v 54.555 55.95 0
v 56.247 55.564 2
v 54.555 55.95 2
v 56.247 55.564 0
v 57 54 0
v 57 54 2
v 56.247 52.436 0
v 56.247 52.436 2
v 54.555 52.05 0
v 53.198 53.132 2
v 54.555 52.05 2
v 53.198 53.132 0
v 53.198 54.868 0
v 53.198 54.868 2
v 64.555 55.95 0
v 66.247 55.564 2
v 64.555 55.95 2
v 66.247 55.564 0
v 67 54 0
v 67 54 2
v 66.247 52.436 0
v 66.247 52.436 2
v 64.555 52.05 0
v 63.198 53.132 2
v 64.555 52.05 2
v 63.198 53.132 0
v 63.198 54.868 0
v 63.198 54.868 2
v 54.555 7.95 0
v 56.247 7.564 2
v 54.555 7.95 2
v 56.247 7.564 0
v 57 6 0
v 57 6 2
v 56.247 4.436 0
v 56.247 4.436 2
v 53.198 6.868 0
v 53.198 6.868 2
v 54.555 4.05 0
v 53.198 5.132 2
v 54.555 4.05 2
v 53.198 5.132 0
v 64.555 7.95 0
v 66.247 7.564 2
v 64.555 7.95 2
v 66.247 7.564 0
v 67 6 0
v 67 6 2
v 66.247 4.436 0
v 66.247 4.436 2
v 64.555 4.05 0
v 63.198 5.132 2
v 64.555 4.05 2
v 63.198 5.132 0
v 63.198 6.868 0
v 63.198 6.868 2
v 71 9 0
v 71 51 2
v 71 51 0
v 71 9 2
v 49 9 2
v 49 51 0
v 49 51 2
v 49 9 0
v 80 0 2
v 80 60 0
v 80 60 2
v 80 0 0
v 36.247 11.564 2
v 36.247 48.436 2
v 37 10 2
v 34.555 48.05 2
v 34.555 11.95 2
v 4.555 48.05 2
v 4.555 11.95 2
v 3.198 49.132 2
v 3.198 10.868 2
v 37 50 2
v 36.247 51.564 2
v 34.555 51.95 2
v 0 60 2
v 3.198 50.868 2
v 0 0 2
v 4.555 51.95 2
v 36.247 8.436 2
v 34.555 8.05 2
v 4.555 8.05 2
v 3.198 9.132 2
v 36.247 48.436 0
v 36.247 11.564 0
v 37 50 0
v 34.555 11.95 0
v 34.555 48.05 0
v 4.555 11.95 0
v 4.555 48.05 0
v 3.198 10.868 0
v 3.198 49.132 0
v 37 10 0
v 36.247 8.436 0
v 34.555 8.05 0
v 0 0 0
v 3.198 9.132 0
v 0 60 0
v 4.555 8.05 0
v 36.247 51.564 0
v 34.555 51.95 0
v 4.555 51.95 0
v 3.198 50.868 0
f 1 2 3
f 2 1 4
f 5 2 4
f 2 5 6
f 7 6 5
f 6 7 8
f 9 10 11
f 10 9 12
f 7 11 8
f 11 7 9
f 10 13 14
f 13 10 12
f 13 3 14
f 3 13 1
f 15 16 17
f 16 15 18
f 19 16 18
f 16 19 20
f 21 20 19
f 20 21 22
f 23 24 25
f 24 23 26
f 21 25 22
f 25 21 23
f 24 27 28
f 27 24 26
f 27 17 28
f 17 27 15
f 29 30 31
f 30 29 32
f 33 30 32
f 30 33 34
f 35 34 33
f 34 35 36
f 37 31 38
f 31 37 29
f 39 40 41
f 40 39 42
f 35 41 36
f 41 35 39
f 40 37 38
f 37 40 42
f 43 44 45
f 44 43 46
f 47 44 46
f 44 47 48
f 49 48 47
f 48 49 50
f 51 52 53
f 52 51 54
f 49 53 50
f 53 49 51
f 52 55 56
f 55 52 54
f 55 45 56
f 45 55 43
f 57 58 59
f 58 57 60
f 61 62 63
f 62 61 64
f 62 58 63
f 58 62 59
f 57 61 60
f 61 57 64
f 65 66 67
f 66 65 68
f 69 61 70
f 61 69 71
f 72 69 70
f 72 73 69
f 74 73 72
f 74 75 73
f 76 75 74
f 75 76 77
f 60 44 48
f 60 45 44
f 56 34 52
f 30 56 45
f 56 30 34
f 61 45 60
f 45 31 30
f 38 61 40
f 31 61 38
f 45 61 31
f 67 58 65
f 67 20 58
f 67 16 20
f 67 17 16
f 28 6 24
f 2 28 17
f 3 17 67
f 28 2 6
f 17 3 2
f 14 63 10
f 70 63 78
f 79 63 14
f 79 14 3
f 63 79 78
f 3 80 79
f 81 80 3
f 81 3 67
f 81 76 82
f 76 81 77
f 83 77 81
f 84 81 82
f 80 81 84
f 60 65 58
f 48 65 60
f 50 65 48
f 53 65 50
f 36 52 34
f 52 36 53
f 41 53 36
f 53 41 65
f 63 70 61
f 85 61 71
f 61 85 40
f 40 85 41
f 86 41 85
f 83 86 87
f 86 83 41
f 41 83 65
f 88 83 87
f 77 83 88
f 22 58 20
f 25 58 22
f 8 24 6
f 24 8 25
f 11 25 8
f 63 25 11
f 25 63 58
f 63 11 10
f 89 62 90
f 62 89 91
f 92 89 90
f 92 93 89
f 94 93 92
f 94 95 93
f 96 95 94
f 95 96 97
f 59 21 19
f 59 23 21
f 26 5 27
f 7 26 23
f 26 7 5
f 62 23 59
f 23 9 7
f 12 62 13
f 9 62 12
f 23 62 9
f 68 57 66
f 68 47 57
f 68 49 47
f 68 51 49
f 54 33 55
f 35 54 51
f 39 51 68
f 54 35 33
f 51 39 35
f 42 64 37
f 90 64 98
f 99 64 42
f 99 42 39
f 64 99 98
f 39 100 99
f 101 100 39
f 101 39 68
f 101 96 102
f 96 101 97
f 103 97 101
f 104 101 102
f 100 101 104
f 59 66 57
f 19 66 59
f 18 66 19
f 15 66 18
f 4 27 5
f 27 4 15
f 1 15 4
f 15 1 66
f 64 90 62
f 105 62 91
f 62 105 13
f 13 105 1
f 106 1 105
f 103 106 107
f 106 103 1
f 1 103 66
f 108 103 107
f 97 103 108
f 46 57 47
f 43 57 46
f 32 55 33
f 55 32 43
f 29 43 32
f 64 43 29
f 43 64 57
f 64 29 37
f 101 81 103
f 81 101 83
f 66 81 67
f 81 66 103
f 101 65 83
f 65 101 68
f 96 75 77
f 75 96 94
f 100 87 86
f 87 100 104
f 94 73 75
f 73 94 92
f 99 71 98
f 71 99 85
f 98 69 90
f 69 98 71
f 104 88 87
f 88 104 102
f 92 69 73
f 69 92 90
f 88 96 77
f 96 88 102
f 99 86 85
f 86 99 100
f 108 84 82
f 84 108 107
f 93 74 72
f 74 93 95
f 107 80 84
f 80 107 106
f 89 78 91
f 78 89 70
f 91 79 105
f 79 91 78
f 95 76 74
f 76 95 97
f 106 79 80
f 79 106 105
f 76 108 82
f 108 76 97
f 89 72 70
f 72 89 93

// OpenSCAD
module servo() {
	union() {
		translate([5,40+4,6]) cylinder(10,4/2,4/2);
		translate([15,40+4,6]) cylinder(10,4/2,4/2);
		translate([5,-4,6]) cylinder(10,4/2,4/2);
		translate([15,-4,6]) cylinder(10,4/2,4/2);
		translate([-1,-1,0])cube([22,42,20]);
		
	}
}


difference() {
	cube([80,60,2]);
	
	translate([50,10,-10]) servo();
	
	translate([5,10,-1]) hull() {
		cylinder(15, 4/2, 4/2);
		translate([30,0,0]) cylinder(15, 4/2, 4/2);
	}
	translate([5,50,-1]) hull() {
		cylinder(15, 4/2, 4/2);
		translate([30,0,0]) cylinder(15, 4/2, 4/2);
	}
}
